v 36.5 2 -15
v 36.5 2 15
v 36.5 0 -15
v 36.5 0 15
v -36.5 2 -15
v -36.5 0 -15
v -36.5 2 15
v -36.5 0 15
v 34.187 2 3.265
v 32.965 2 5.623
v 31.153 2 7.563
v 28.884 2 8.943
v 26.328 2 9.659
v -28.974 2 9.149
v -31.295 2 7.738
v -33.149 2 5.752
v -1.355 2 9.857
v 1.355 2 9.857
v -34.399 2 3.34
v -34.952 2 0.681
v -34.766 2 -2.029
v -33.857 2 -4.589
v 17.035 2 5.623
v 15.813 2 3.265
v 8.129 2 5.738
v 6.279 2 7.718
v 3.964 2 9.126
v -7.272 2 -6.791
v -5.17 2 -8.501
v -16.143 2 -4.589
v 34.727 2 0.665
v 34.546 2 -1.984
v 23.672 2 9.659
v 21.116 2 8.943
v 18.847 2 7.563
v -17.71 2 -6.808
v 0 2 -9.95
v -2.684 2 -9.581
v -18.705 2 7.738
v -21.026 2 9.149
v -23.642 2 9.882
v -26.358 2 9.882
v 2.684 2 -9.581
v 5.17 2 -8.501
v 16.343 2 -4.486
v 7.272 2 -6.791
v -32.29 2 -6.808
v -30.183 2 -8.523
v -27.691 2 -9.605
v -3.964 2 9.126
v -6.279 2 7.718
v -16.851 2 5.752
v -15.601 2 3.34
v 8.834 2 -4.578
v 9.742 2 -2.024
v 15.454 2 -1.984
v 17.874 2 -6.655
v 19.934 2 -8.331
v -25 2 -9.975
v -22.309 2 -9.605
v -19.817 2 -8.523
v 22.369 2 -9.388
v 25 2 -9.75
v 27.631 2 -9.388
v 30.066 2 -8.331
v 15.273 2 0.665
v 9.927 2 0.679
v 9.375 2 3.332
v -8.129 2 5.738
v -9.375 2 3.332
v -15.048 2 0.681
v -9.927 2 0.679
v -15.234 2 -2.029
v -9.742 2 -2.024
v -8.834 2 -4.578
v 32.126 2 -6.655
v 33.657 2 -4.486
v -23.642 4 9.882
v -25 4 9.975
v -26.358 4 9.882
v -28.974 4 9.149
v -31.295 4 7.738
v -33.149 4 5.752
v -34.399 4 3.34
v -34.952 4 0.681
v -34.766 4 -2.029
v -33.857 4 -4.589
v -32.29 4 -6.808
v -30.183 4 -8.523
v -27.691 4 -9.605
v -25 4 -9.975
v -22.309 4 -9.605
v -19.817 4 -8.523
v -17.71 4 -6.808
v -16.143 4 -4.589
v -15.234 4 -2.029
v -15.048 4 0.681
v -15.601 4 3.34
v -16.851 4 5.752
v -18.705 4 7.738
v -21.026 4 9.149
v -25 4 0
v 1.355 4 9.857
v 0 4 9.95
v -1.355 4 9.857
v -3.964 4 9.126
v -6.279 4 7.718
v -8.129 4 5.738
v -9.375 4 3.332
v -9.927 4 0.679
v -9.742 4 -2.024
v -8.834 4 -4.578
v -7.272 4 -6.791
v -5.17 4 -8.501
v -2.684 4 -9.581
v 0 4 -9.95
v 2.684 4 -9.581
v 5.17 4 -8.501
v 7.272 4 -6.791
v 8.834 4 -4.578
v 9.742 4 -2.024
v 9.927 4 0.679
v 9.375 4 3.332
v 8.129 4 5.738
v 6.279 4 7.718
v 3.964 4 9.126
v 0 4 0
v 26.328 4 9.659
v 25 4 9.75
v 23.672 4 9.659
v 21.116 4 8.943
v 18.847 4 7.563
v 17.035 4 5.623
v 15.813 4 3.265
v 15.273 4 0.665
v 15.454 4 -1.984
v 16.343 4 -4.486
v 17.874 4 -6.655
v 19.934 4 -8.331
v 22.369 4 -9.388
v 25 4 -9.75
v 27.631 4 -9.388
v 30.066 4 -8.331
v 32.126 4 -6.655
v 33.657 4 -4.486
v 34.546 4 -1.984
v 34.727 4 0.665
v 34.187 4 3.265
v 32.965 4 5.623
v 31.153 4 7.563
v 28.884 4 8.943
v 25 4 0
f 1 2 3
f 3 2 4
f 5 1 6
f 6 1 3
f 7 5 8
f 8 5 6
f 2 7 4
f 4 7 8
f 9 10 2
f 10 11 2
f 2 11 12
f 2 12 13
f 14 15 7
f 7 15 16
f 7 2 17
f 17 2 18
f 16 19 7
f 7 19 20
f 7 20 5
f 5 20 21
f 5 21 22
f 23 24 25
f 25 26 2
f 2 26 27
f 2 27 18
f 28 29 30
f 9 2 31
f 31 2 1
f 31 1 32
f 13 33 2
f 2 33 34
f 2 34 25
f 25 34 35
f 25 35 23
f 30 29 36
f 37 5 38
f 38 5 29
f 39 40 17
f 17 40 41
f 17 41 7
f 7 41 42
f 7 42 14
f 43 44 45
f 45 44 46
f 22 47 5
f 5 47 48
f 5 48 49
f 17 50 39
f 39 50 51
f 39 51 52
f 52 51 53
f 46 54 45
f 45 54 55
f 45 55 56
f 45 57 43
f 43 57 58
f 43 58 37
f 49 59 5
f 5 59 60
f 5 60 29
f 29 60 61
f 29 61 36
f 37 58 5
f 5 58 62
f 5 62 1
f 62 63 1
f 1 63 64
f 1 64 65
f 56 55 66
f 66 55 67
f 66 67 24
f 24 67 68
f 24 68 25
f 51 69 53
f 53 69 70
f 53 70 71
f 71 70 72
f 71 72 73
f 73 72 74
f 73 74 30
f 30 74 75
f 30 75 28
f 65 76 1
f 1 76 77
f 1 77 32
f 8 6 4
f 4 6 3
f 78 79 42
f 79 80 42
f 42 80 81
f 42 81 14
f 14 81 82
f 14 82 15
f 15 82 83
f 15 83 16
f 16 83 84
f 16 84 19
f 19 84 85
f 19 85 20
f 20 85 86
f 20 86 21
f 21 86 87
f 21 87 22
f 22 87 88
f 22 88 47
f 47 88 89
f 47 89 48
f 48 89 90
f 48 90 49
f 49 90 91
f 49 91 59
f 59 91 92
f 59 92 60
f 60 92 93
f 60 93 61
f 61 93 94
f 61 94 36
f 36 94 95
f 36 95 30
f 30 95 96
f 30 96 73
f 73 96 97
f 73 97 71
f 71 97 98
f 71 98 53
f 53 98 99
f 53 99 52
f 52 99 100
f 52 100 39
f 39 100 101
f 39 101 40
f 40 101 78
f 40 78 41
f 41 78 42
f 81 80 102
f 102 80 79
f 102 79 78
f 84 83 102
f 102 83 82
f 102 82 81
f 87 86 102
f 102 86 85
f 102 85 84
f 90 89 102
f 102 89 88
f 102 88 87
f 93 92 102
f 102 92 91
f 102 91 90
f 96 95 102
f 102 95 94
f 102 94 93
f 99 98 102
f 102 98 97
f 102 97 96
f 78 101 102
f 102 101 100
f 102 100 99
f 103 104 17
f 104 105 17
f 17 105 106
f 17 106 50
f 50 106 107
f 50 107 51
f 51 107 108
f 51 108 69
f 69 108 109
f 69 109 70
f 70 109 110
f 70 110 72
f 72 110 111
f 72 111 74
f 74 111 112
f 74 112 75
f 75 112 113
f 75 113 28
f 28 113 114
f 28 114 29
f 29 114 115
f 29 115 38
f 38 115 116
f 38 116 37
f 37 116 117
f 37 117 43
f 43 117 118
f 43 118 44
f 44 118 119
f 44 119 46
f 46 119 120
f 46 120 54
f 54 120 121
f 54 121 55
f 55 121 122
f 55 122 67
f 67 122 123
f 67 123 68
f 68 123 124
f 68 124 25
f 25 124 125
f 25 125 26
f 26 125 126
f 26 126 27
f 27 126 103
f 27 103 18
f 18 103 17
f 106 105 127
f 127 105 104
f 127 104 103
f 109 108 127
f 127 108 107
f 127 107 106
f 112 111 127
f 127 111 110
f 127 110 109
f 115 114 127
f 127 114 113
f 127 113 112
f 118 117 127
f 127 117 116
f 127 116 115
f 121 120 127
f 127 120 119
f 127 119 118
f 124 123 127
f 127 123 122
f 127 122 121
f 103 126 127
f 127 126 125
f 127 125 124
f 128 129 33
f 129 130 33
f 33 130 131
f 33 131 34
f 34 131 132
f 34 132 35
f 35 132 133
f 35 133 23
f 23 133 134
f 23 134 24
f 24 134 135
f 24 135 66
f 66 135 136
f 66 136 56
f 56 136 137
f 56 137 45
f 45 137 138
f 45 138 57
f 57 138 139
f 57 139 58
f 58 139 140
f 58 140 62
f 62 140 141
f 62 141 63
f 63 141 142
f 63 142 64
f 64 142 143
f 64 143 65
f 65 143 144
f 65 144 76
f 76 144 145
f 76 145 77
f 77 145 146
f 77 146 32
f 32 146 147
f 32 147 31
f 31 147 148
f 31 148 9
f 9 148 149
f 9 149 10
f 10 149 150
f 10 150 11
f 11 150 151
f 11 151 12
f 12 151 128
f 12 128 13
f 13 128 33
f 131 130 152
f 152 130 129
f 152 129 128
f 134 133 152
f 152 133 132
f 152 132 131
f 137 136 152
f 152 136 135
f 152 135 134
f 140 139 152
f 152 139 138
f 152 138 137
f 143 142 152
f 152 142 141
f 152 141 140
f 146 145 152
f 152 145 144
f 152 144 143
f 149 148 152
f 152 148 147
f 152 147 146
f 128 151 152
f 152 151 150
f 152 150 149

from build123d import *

# Parameters (mm, degrees)
CROQUIS1_W              = 73
CROQUIS1_H              = 30
SALIENTE_EXTRUIR1_DEPTH = 2
CROQUIS2_R              = 9.975
CROQUIS2_R_2            = 9.95
CROQUIS2_R_3            = 9.75
SALIENTE_EXTRUIR2_DEPTH = 2


with BuildPart() as part:
    # Croquis1 → Saliente-Extruir1 (new body)
    with BuildSketch(Plane(origin=(0, 0, 0), x_dir=(1, 0, 0), z_dir=(0, 1, 0))):
        Rectangle(CROQUIS1_W, CROQUIS1_H)
    extrude(amount=SALIENTE_EXTRUIR1_DEPTH)

    # Croquis2 → Saliente-Extruir2 (add)
    with BuildSketch(Plane(origin=(0, 2, 0), x_dir=(1, 0, 0), z_dir=(0, 1, 0))):
        with Locations(Location((-25, 0, 0), (0, 0, 90))):
            Circle(CROQUIS2_R)
        with Locations(Location((0, 0, 0), (0, 0, 90))):
            Circle(CROQUIS2_R_2)
        with Locations(Location((25, 0, 0), (0, 0, 90))):
            Circle(CROQUIS2_R_3)
    extrude(amount=SALIENTE_EXTRUIR2_DEPTH)


solid = part.part
